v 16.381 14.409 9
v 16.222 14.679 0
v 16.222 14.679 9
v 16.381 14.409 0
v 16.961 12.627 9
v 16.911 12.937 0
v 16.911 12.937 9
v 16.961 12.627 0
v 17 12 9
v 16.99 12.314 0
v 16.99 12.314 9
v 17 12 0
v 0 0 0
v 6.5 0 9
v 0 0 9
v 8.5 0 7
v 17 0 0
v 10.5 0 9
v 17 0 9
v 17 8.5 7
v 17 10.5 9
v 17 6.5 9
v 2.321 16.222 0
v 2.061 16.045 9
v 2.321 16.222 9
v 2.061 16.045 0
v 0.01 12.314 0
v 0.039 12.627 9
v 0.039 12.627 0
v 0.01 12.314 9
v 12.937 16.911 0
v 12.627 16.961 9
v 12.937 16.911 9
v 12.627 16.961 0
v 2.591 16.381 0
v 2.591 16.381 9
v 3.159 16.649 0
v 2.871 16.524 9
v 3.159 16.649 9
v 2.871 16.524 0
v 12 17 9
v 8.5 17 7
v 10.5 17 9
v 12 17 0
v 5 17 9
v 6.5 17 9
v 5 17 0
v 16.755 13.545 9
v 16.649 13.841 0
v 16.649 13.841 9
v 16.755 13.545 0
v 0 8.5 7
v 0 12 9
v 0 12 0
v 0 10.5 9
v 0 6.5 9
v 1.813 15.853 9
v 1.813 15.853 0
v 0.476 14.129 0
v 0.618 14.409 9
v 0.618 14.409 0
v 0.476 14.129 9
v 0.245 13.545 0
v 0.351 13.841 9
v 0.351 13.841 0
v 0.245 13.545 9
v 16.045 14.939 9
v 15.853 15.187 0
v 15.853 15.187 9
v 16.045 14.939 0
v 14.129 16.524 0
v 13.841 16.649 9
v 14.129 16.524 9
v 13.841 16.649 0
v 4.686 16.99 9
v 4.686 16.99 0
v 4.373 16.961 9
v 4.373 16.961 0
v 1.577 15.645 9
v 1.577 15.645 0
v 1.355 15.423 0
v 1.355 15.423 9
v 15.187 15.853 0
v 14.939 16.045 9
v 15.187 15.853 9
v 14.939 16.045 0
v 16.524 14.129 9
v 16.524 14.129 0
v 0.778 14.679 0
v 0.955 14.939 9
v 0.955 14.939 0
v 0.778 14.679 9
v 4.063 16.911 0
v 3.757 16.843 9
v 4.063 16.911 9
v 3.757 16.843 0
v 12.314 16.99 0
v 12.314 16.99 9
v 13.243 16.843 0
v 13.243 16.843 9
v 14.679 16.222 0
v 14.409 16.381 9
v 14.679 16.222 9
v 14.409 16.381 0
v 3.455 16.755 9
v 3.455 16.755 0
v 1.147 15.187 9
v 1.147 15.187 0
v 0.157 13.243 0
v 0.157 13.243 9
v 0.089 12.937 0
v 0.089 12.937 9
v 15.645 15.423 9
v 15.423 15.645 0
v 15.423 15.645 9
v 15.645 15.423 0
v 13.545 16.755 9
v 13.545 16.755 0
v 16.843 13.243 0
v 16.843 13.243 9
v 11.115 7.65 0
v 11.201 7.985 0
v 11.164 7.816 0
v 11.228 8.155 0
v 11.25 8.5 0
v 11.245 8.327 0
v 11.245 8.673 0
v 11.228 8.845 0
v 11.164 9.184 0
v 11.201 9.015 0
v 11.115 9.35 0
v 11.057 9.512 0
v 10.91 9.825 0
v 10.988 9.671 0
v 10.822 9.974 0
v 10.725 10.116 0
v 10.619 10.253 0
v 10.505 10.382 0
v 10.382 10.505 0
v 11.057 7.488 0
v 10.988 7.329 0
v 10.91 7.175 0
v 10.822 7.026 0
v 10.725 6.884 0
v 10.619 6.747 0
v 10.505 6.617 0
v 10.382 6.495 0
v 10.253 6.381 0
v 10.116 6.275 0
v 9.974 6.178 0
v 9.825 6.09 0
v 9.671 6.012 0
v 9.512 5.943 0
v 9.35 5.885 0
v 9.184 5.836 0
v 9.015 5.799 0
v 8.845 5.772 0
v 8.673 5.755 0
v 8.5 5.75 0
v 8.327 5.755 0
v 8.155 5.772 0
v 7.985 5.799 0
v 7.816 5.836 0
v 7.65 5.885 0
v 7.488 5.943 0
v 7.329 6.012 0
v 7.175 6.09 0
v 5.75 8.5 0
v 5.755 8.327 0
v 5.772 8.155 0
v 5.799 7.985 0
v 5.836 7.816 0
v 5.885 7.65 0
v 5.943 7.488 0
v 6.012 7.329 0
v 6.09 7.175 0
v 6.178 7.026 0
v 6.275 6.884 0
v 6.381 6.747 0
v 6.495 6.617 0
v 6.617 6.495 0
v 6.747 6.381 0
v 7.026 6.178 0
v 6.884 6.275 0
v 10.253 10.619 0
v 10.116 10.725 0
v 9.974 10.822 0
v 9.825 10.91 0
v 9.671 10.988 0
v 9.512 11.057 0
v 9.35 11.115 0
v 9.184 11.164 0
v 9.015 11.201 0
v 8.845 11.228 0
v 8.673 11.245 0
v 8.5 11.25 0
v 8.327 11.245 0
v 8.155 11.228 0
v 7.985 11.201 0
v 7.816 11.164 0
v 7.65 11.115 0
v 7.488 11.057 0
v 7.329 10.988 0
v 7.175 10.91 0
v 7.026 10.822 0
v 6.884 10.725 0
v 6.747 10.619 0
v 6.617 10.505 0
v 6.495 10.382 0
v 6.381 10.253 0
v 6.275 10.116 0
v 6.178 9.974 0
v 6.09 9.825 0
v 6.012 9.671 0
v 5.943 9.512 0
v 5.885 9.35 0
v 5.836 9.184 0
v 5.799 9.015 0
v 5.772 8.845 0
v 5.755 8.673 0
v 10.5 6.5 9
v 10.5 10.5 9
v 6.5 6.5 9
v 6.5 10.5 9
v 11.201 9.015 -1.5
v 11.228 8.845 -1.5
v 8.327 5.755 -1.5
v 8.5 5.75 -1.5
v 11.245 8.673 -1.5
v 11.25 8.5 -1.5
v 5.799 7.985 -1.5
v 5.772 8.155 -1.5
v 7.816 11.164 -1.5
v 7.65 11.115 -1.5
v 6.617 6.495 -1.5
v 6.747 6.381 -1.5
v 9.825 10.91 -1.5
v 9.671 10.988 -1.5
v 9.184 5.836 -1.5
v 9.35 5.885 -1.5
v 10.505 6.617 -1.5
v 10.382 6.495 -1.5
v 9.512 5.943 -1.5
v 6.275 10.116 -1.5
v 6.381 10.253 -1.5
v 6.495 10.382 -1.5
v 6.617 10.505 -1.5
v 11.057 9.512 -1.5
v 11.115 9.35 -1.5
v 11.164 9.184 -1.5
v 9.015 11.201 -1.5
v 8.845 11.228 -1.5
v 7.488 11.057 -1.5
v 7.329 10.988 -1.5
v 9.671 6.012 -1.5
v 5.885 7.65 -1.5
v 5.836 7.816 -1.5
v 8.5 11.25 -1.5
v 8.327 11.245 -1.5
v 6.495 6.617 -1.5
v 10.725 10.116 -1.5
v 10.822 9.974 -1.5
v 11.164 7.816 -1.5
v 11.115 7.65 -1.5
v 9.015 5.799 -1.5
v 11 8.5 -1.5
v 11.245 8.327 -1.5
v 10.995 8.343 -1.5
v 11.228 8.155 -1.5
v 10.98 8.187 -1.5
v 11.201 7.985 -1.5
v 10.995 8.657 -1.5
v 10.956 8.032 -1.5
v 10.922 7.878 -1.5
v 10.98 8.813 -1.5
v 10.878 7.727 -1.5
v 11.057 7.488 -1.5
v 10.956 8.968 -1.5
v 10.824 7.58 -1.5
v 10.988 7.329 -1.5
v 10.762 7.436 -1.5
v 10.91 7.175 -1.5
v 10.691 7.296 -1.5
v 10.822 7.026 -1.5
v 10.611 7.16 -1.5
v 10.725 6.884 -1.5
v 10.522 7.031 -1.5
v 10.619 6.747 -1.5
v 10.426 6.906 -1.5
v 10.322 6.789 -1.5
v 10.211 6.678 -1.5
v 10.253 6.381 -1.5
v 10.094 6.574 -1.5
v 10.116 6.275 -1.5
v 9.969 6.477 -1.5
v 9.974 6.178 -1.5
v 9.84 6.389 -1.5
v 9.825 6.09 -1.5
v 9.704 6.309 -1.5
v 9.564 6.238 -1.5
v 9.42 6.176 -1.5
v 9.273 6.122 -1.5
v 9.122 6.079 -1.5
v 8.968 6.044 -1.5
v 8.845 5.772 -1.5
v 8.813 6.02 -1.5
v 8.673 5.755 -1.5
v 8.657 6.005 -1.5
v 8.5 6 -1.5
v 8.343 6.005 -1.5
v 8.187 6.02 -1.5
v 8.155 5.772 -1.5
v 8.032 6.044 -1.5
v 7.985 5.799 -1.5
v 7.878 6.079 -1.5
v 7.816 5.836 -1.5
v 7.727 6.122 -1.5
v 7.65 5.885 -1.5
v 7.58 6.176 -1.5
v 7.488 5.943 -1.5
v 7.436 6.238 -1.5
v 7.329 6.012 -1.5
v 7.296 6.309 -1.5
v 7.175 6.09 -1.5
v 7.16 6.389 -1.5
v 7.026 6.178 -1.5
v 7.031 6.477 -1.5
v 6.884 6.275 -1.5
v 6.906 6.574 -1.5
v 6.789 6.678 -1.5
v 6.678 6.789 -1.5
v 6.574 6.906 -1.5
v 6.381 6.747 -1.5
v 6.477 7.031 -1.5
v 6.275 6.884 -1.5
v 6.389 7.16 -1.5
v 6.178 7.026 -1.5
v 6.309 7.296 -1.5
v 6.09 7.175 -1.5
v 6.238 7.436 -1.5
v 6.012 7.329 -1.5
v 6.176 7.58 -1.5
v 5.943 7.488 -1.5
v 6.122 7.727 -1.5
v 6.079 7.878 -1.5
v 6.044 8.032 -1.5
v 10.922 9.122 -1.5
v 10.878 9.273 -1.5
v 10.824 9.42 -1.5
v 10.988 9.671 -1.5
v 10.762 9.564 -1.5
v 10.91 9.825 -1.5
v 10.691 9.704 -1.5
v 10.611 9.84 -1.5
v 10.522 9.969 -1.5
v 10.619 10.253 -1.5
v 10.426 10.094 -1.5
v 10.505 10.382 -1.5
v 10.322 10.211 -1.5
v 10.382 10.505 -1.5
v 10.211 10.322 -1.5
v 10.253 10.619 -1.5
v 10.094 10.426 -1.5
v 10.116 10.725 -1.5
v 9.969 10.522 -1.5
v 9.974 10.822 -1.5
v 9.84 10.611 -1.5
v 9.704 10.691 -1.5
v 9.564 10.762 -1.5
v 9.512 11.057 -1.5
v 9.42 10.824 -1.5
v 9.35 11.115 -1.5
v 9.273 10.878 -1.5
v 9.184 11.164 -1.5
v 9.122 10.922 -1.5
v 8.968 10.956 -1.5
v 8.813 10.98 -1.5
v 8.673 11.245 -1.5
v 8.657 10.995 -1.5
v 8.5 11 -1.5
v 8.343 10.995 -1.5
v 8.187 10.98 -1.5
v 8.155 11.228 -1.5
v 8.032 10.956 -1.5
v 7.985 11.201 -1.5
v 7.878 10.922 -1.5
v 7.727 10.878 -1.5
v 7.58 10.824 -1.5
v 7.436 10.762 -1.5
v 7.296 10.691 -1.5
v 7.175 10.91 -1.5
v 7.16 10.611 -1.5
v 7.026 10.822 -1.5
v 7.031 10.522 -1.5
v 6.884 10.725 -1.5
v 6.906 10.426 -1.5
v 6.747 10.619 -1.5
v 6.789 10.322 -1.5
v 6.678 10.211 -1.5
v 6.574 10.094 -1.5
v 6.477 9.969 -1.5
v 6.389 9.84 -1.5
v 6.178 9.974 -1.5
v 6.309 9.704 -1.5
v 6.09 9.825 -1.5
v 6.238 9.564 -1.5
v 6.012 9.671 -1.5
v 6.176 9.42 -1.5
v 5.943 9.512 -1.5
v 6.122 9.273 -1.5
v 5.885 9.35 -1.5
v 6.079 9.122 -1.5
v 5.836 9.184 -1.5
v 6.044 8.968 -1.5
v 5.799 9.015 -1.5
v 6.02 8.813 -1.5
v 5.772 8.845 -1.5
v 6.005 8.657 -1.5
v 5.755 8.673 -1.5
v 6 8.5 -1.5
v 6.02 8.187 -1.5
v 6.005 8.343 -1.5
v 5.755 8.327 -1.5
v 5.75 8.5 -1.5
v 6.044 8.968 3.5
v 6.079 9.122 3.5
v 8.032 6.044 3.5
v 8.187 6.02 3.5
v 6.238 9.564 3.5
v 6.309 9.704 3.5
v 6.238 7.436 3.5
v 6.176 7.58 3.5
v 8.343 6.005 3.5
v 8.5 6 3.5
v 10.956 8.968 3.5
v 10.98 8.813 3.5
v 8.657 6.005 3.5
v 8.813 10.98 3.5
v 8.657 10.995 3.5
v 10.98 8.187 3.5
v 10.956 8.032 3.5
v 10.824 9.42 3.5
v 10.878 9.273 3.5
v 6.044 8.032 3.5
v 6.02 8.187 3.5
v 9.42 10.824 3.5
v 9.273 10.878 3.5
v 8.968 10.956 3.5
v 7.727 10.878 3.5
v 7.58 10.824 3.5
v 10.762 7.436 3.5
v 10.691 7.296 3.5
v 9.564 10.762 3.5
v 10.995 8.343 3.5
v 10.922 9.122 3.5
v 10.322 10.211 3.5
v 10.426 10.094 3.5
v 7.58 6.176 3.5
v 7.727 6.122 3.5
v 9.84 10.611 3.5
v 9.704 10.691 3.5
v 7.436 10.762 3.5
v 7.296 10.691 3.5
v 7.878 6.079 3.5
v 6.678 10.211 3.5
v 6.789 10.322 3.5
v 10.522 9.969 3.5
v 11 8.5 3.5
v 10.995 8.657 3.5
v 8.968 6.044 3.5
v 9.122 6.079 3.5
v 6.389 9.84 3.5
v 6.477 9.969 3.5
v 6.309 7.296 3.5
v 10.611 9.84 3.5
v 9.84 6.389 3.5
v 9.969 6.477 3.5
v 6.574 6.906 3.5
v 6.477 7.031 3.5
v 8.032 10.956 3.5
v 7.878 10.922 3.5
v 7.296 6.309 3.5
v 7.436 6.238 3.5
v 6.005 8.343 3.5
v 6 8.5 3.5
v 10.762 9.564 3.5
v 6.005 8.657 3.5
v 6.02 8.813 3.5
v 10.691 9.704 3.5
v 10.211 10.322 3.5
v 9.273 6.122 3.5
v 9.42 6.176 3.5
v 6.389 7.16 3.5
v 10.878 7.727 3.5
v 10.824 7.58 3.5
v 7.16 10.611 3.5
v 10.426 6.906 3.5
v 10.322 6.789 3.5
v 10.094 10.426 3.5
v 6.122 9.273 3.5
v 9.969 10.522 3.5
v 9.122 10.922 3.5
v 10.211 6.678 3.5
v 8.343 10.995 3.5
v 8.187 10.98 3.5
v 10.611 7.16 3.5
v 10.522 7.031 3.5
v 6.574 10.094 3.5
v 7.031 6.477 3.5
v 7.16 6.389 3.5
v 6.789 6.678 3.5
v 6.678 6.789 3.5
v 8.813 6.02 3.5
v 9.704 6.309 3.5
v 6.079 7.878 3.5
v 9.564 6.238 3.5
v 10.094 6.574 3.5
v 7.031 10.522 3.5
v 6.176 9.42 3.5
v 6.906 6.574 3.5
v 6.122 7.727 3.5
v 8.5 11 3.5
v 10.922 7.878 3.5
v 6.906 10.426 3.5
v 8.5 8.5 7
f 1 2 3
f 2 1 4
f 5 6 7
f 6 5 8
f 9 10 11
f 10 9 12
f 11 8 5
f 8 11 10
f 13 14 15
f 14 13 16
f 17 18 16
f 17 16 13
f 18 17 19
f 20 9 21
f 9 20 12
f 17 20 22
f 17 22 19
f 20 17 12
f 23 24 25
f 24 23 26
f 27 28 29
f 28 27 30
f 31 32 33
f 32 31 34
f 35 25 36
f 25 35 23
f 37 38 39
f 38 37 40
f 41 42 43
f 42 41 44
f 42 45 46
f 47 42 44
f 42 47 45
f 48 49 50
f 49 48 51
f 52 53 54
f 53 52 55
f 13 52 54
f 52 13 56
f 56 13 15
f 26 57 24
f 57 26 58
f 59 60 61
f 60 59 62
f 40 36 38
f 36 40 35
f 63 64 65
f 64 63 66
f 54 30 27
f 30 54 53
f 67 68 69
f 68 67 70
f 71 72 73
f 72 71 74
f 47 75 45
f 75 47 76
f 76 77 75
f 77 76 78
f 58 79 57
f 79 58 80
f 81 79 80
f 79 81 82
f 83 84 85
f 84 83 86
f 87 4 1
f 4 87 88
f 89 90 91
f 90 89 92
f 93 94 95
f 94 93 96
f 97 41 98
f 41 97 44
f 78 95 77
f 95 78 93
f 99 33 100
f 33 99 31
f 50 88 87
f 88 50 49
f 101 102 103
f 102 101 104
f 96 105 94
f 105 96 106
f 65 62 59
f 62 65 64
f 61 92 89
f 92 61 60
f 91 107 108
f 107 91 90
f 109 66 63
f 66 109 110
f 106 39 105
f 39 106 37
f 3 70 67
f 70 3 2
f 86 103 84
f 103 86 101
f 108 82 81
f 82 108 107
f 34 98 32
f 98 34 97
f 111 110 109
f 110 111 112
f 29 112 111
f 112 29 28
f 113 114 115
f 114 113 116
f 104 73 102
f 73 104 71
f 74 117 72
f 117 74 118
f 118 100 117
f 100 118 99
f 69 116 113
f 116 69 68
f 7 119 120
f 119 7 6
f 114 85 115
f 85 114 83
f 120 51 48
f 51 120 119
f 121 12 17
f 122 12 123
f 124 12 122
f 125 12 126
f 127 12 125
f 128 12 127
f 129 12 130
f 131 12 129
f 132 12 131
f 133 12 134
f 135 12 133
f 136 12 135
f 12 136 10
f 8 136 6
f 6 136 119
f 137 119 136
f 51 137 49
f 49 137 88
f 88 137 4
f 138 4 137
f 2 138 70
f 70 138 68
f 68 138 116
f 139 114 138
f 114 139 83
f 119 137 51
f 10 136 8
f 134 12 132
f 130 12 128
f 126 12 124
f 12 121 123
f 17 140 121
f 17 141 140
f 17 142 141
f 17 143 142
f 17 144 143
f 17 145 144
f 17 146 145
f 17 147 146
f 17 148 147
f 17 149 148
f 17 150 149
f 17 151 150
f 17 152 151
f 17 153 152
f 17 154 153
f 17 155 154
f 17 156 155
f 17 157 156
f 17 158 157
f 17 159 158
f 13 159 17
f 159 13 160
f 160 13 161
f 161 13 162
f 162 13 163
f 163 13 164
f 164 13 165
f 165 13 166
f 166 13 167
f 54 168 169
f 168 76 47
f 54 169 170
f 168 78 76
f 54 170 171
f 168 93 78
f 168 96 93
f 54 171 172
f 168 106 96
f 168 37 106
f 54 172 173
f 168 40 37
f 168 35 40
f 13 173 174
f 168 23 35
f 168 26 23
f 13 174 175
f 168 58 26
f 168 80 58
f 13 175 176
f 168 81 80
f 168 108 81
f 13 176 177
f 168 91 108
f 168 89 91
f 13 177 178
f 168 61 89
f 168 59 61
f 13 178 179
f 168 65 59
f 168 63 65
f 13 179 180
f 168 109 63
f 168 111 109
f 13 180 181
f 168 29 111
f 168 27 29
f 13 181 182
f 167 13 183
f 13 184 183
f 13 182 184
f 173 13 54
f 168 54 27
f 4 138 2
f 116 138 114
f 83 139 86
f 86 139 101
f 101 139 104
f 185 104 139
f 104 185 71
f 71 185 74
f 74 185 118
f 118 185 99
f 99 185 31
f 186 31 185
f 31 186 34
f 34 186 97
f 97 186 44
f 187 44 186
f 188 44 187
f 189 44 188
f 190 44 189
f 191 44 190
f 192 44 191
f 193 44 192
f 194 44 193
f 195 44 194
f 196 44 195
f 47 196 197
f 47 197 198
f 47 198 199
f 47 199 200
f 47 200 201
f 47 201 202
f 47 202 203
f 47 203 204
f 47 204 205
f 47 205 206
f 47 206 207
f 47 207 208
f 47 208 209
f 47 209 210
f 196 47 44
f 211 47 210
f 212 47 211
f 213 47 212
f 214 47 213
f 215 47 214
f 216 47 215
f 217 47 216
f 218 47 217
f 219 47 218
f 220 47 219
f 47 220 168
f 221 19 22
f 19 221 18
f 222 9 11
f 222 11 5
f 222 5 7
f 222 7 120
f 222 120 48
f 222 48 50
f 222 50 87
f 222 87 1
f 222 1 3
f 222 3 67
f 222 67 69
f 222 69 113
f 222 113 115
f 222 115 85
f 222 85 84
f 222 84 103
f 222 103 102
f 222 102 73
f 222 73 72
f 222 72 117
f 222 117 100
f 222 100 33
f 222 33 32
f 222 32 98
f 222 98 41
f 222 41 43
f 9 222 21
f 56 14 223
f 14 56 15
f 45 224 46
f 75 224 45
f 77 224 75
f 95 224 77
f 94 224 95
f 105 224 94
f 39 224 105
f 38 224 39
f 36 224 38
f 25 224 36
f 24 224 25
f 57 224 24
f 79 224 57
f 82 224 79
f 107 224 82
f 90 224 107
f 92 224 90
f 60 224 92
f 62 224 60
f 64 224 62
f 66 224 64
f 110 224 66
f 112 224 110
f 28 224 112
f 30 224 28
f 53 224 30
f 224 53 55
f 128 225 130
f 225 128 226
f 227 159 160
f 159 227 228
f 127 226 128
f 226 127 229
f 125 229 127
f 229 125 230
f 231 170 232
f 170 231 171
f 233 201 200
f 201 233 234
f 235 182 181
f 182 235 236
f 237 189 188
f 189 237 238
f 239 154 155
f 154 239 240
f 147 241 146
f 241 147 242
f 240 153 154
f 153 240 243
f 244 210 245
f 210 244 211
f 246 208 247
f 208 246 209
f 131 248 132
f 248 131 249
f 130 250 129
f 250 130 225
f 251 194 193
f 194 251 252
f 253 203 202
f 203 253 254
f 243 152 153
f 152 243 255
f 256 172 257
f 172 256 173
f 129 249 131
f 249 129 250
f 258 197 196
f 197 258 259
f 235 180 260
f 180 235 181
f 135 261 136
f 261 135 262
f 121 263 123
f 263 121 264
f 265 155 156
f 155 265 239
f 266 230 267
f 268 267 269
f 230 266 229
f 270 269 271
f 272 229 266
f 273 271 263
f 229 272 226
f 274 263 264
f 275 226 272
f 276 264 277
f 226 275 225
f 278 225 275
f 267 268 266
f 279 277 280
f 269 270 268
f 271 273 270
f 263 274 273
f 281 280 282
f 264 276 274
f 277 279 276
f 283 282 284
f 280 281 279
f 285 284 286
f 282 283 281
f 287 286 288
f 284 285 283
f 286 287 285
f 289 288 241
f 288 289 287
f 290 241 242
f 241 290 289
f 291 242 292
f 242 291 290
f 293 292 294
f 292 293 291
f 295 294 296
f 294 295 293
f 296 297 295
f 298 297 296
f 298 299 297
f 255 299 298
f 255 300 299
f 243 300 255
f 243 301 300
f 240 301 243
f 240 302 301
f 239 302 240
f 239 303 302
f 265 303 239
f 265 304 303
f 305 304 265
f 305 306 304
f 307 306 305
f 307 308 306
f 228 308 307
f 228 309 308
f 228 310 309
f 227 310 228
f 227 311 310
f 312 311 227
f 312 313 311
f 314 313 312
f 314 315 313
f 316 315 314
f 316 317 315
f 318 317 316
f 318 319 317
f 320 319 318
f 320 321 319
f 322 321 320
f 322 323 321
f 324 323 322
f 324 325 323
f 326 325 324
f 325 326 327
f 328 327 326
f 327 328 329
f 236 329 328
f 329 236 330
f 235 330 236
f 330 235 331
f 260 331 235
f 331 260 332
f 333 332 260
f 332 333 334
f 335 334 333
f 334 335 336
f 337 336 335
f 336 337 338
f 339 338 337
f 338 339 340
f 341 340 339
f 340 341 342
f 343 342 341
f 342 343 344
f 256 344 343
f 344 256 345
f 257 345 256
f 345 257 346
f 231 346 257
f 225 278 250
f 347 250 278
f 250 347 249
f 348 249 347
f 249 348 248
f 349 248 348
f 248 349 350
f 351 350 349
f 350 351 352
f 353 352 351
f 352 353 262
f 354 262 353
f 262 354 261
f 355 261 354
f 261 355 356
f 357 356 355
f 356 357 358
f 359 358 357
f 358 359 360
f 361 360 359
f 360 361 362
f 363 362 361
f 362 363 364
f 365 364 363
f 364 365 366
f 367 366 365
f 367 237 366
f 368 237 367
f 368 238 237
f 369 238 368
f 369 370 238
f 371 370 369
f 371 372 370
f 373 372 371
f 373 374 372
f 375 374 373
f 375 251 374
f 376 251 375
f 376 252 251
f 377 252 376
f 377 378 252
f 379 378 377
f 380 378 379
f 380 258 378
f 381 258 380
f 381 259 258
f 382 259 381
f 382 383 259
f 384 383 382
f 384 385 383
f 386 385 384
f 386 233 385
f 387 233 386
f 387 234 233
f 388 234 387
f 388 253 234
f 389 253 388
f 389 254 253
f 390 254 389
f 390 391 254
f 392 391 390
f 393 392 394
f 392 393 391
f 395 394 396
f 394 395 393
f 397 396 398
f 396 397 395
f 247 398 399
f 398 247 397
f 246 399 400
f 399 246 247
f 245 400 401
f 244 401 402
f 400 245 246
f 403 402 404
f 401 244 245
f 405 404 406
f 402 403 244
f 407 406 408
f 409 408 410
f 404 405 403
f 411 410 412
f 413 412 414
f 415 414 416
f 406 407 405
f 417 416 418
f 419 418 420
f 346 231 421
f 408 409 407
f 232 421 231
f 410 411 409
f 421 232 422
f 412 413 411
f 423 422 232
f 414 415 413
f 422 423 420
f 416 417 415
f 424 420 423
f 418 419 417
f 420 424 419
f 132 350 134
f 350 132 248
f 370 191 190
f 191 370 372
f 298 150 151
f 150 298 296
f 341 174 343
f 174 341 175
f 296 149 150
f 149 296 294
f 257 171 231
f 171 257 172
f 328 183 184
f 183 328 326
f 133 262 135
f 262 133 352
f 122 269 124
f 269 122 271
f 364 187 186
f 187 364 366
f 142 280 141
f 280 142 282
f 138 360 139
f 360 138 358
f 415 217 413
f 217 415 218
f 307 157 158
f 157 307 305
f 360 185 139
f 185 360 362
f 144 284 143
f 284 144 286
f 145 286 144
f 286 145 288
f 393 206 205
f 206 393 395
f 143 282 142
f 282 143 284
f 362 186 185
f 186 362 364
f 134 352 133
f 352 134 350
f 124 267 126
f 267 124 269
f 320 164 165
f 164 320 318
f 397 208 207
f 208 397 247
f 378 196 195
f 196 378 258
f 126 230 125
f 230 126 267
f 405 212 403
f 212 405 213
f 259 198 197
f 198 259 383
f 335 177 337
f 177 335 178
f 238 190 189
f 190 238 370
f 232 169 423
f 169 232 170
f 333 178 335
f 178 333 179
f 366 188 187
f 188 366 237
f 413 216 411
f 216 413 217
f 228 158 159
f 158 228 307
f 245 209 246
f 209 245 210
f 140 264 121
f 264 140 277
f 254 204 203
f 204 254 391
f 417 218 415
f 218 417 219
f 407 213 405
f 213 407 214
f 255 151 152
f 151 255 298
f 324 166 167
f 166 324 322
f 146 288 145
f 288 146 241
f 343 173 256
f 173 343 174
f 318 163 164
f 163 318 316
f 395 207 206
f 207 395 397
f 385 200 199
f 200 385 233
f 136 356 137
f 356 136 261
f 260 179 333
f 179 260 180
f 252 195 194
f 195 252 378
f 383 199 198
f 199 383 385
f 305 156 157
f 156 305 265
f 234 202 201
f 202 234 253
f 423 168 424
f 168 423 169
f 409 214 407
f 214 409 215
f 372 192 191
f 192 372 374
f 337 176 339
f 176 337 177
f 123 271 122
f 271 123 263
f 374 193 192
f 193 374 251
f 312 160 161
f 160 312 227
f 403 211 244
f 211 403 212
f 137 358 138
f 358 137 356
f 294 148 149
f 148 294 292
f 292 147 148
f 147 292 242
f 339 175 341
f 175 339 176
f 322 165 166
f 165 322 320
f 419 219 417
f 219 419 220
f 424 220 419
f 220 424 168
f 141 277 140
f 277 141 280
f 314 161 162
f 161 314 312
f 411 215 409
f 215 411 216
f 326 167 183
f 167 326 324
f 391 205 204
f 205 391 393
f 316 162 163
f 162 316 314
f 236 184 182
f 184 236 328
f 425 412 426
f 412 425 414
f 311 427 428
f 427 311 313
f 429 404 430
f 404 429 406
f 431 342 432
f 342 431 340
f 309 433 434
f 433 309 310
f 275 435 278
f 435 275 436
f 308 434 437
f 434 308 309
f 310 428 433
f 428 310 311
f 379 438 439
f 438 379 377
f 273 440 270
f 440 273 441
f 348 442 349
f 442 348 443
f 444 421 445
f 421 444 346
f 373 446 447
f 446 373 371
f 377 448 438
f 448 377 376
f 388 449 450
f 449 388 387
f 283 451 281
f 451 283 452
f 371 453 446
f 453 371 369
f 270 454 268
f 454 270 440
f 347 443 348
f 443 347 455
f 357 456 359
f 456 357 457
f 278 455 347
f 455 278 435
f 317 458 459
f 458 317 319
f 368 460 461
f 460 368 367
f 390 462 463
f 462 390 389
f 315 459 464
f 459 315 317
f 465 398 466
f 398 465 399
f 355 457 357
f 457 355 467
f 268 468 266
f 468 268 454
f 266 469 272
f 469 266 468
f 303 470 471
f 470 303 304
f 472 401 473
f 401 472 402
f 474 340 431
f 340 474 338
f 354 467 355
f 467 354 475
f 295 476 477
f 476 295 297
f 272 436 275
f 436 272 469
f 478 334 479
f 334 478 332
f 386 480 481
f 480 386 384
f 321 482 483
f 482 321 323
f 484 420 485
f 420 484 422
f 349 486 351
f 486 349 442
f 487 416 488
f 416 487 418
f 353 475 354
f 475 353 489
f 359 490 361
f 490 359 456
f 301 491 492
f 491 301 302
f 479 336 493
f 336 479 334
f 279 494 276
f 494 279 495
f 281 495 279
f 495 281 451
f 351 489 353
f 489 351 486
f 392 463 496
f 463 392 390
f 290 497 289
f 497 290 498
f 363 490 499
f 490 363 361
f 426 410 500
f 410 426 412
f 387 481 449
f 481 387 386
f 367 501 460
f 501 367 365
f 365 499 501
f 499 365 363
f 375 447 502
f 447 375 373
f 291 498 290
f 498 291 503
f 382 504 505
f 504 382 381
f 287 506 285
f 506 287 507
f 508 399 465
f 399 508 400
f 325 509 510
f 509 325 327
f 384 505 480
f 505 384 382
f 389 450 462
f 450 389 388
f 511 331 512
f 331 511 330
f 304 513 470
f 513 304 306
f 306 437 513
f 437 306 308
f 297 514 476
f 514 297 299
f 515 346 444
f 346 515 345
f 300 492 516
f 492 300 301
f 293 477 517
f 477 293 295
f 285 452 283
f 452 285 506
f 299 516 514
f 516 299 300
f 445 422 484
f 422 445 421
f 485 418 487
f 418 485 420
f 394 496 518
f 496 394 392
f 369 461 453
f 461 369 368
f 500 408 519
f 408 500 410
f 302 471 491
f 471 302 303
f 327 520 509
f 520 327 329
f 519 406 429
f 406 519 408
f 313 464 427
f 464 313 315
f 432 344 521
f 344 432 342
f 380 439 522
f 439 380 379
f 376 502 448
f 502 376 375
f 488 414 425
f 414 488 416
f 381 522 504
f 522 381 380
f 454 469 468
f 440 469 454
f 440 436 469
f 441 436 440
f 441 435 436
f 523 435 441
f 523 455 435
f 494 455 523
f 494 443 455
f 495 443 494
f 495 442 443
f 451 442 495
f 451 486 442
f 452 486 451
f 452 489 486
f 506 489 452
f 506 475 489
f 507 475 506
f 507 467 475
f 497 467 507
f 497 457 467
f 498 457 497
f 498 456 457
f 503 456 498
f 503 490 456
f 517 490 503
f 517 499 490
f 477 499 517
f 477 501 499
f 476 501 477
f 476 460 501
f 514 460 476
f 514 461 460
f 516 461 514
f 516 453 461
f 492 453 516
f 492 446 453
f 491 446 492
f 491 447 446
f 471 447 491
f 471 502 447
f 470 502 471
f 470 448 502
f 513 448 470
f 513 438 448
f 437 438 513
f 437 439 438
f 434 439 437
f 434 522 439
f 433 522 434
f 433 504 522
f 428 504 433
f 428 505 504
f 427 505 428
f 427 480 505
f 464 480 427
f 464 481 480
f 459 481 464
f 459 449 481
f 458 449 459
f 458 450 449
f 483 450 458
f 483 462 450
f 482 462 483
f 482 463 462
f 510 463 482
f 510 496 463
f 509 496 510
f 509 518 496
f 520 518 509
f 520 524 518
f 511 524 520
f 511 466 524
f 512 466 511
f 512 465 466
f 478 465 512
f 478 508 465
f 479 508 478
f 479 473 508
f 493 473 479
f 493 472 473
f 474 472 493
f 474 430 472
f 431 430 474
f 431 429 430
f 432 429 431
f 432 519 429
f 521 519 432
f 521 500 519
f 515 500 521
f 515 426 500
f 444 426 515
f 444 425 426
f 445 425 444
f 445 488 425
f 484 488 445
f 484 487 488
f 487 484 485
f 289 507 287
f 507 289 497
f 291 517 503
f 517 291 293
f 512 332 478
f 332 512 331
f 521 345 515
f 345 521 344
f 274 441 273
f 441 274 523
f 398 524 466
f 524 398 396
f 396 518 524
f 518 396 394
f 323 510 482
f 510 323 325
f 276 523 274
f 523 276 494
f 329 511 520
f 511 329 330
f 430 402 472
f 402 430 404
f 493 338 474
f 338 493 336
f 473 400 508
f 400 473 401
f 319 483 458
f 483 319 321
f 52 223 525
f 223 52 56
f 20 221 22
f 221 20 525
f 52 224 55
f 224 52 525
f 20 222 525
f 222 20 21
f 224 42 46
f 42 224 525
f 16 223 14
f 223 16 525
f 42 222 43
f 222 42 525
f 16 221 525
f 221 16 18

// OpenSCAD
$fn=100;
module grv(){
    linear_extrude(17)
        polygon([[0,0],[2,2],[4,0]],[[0,1,2]]);
}
difference(){
    union(){
        linear_extrude(9)
            difference(){
                square([17,17]);
                translate([0,12])
                    difference(){
                        square([5,5]);
                        translate([5,0])
                            circle(5);
                    }
                translate([12,12])
                    difference(){
                        square([5,5]);
                        circle(5);
                    }
            }
        translate([8.5,8.5,-1.5])
            cylinder(1.5,2.75,2.75);
    }
    translate([8.5,8.5,-1.5])
        cylinder(5,2.5,2.5);
    translate([0,10.5,9])
        rotate([90,180,90])
            grv();
    translate([10.5,17,9])
        rotate([90,180,0])
            grv();
}
